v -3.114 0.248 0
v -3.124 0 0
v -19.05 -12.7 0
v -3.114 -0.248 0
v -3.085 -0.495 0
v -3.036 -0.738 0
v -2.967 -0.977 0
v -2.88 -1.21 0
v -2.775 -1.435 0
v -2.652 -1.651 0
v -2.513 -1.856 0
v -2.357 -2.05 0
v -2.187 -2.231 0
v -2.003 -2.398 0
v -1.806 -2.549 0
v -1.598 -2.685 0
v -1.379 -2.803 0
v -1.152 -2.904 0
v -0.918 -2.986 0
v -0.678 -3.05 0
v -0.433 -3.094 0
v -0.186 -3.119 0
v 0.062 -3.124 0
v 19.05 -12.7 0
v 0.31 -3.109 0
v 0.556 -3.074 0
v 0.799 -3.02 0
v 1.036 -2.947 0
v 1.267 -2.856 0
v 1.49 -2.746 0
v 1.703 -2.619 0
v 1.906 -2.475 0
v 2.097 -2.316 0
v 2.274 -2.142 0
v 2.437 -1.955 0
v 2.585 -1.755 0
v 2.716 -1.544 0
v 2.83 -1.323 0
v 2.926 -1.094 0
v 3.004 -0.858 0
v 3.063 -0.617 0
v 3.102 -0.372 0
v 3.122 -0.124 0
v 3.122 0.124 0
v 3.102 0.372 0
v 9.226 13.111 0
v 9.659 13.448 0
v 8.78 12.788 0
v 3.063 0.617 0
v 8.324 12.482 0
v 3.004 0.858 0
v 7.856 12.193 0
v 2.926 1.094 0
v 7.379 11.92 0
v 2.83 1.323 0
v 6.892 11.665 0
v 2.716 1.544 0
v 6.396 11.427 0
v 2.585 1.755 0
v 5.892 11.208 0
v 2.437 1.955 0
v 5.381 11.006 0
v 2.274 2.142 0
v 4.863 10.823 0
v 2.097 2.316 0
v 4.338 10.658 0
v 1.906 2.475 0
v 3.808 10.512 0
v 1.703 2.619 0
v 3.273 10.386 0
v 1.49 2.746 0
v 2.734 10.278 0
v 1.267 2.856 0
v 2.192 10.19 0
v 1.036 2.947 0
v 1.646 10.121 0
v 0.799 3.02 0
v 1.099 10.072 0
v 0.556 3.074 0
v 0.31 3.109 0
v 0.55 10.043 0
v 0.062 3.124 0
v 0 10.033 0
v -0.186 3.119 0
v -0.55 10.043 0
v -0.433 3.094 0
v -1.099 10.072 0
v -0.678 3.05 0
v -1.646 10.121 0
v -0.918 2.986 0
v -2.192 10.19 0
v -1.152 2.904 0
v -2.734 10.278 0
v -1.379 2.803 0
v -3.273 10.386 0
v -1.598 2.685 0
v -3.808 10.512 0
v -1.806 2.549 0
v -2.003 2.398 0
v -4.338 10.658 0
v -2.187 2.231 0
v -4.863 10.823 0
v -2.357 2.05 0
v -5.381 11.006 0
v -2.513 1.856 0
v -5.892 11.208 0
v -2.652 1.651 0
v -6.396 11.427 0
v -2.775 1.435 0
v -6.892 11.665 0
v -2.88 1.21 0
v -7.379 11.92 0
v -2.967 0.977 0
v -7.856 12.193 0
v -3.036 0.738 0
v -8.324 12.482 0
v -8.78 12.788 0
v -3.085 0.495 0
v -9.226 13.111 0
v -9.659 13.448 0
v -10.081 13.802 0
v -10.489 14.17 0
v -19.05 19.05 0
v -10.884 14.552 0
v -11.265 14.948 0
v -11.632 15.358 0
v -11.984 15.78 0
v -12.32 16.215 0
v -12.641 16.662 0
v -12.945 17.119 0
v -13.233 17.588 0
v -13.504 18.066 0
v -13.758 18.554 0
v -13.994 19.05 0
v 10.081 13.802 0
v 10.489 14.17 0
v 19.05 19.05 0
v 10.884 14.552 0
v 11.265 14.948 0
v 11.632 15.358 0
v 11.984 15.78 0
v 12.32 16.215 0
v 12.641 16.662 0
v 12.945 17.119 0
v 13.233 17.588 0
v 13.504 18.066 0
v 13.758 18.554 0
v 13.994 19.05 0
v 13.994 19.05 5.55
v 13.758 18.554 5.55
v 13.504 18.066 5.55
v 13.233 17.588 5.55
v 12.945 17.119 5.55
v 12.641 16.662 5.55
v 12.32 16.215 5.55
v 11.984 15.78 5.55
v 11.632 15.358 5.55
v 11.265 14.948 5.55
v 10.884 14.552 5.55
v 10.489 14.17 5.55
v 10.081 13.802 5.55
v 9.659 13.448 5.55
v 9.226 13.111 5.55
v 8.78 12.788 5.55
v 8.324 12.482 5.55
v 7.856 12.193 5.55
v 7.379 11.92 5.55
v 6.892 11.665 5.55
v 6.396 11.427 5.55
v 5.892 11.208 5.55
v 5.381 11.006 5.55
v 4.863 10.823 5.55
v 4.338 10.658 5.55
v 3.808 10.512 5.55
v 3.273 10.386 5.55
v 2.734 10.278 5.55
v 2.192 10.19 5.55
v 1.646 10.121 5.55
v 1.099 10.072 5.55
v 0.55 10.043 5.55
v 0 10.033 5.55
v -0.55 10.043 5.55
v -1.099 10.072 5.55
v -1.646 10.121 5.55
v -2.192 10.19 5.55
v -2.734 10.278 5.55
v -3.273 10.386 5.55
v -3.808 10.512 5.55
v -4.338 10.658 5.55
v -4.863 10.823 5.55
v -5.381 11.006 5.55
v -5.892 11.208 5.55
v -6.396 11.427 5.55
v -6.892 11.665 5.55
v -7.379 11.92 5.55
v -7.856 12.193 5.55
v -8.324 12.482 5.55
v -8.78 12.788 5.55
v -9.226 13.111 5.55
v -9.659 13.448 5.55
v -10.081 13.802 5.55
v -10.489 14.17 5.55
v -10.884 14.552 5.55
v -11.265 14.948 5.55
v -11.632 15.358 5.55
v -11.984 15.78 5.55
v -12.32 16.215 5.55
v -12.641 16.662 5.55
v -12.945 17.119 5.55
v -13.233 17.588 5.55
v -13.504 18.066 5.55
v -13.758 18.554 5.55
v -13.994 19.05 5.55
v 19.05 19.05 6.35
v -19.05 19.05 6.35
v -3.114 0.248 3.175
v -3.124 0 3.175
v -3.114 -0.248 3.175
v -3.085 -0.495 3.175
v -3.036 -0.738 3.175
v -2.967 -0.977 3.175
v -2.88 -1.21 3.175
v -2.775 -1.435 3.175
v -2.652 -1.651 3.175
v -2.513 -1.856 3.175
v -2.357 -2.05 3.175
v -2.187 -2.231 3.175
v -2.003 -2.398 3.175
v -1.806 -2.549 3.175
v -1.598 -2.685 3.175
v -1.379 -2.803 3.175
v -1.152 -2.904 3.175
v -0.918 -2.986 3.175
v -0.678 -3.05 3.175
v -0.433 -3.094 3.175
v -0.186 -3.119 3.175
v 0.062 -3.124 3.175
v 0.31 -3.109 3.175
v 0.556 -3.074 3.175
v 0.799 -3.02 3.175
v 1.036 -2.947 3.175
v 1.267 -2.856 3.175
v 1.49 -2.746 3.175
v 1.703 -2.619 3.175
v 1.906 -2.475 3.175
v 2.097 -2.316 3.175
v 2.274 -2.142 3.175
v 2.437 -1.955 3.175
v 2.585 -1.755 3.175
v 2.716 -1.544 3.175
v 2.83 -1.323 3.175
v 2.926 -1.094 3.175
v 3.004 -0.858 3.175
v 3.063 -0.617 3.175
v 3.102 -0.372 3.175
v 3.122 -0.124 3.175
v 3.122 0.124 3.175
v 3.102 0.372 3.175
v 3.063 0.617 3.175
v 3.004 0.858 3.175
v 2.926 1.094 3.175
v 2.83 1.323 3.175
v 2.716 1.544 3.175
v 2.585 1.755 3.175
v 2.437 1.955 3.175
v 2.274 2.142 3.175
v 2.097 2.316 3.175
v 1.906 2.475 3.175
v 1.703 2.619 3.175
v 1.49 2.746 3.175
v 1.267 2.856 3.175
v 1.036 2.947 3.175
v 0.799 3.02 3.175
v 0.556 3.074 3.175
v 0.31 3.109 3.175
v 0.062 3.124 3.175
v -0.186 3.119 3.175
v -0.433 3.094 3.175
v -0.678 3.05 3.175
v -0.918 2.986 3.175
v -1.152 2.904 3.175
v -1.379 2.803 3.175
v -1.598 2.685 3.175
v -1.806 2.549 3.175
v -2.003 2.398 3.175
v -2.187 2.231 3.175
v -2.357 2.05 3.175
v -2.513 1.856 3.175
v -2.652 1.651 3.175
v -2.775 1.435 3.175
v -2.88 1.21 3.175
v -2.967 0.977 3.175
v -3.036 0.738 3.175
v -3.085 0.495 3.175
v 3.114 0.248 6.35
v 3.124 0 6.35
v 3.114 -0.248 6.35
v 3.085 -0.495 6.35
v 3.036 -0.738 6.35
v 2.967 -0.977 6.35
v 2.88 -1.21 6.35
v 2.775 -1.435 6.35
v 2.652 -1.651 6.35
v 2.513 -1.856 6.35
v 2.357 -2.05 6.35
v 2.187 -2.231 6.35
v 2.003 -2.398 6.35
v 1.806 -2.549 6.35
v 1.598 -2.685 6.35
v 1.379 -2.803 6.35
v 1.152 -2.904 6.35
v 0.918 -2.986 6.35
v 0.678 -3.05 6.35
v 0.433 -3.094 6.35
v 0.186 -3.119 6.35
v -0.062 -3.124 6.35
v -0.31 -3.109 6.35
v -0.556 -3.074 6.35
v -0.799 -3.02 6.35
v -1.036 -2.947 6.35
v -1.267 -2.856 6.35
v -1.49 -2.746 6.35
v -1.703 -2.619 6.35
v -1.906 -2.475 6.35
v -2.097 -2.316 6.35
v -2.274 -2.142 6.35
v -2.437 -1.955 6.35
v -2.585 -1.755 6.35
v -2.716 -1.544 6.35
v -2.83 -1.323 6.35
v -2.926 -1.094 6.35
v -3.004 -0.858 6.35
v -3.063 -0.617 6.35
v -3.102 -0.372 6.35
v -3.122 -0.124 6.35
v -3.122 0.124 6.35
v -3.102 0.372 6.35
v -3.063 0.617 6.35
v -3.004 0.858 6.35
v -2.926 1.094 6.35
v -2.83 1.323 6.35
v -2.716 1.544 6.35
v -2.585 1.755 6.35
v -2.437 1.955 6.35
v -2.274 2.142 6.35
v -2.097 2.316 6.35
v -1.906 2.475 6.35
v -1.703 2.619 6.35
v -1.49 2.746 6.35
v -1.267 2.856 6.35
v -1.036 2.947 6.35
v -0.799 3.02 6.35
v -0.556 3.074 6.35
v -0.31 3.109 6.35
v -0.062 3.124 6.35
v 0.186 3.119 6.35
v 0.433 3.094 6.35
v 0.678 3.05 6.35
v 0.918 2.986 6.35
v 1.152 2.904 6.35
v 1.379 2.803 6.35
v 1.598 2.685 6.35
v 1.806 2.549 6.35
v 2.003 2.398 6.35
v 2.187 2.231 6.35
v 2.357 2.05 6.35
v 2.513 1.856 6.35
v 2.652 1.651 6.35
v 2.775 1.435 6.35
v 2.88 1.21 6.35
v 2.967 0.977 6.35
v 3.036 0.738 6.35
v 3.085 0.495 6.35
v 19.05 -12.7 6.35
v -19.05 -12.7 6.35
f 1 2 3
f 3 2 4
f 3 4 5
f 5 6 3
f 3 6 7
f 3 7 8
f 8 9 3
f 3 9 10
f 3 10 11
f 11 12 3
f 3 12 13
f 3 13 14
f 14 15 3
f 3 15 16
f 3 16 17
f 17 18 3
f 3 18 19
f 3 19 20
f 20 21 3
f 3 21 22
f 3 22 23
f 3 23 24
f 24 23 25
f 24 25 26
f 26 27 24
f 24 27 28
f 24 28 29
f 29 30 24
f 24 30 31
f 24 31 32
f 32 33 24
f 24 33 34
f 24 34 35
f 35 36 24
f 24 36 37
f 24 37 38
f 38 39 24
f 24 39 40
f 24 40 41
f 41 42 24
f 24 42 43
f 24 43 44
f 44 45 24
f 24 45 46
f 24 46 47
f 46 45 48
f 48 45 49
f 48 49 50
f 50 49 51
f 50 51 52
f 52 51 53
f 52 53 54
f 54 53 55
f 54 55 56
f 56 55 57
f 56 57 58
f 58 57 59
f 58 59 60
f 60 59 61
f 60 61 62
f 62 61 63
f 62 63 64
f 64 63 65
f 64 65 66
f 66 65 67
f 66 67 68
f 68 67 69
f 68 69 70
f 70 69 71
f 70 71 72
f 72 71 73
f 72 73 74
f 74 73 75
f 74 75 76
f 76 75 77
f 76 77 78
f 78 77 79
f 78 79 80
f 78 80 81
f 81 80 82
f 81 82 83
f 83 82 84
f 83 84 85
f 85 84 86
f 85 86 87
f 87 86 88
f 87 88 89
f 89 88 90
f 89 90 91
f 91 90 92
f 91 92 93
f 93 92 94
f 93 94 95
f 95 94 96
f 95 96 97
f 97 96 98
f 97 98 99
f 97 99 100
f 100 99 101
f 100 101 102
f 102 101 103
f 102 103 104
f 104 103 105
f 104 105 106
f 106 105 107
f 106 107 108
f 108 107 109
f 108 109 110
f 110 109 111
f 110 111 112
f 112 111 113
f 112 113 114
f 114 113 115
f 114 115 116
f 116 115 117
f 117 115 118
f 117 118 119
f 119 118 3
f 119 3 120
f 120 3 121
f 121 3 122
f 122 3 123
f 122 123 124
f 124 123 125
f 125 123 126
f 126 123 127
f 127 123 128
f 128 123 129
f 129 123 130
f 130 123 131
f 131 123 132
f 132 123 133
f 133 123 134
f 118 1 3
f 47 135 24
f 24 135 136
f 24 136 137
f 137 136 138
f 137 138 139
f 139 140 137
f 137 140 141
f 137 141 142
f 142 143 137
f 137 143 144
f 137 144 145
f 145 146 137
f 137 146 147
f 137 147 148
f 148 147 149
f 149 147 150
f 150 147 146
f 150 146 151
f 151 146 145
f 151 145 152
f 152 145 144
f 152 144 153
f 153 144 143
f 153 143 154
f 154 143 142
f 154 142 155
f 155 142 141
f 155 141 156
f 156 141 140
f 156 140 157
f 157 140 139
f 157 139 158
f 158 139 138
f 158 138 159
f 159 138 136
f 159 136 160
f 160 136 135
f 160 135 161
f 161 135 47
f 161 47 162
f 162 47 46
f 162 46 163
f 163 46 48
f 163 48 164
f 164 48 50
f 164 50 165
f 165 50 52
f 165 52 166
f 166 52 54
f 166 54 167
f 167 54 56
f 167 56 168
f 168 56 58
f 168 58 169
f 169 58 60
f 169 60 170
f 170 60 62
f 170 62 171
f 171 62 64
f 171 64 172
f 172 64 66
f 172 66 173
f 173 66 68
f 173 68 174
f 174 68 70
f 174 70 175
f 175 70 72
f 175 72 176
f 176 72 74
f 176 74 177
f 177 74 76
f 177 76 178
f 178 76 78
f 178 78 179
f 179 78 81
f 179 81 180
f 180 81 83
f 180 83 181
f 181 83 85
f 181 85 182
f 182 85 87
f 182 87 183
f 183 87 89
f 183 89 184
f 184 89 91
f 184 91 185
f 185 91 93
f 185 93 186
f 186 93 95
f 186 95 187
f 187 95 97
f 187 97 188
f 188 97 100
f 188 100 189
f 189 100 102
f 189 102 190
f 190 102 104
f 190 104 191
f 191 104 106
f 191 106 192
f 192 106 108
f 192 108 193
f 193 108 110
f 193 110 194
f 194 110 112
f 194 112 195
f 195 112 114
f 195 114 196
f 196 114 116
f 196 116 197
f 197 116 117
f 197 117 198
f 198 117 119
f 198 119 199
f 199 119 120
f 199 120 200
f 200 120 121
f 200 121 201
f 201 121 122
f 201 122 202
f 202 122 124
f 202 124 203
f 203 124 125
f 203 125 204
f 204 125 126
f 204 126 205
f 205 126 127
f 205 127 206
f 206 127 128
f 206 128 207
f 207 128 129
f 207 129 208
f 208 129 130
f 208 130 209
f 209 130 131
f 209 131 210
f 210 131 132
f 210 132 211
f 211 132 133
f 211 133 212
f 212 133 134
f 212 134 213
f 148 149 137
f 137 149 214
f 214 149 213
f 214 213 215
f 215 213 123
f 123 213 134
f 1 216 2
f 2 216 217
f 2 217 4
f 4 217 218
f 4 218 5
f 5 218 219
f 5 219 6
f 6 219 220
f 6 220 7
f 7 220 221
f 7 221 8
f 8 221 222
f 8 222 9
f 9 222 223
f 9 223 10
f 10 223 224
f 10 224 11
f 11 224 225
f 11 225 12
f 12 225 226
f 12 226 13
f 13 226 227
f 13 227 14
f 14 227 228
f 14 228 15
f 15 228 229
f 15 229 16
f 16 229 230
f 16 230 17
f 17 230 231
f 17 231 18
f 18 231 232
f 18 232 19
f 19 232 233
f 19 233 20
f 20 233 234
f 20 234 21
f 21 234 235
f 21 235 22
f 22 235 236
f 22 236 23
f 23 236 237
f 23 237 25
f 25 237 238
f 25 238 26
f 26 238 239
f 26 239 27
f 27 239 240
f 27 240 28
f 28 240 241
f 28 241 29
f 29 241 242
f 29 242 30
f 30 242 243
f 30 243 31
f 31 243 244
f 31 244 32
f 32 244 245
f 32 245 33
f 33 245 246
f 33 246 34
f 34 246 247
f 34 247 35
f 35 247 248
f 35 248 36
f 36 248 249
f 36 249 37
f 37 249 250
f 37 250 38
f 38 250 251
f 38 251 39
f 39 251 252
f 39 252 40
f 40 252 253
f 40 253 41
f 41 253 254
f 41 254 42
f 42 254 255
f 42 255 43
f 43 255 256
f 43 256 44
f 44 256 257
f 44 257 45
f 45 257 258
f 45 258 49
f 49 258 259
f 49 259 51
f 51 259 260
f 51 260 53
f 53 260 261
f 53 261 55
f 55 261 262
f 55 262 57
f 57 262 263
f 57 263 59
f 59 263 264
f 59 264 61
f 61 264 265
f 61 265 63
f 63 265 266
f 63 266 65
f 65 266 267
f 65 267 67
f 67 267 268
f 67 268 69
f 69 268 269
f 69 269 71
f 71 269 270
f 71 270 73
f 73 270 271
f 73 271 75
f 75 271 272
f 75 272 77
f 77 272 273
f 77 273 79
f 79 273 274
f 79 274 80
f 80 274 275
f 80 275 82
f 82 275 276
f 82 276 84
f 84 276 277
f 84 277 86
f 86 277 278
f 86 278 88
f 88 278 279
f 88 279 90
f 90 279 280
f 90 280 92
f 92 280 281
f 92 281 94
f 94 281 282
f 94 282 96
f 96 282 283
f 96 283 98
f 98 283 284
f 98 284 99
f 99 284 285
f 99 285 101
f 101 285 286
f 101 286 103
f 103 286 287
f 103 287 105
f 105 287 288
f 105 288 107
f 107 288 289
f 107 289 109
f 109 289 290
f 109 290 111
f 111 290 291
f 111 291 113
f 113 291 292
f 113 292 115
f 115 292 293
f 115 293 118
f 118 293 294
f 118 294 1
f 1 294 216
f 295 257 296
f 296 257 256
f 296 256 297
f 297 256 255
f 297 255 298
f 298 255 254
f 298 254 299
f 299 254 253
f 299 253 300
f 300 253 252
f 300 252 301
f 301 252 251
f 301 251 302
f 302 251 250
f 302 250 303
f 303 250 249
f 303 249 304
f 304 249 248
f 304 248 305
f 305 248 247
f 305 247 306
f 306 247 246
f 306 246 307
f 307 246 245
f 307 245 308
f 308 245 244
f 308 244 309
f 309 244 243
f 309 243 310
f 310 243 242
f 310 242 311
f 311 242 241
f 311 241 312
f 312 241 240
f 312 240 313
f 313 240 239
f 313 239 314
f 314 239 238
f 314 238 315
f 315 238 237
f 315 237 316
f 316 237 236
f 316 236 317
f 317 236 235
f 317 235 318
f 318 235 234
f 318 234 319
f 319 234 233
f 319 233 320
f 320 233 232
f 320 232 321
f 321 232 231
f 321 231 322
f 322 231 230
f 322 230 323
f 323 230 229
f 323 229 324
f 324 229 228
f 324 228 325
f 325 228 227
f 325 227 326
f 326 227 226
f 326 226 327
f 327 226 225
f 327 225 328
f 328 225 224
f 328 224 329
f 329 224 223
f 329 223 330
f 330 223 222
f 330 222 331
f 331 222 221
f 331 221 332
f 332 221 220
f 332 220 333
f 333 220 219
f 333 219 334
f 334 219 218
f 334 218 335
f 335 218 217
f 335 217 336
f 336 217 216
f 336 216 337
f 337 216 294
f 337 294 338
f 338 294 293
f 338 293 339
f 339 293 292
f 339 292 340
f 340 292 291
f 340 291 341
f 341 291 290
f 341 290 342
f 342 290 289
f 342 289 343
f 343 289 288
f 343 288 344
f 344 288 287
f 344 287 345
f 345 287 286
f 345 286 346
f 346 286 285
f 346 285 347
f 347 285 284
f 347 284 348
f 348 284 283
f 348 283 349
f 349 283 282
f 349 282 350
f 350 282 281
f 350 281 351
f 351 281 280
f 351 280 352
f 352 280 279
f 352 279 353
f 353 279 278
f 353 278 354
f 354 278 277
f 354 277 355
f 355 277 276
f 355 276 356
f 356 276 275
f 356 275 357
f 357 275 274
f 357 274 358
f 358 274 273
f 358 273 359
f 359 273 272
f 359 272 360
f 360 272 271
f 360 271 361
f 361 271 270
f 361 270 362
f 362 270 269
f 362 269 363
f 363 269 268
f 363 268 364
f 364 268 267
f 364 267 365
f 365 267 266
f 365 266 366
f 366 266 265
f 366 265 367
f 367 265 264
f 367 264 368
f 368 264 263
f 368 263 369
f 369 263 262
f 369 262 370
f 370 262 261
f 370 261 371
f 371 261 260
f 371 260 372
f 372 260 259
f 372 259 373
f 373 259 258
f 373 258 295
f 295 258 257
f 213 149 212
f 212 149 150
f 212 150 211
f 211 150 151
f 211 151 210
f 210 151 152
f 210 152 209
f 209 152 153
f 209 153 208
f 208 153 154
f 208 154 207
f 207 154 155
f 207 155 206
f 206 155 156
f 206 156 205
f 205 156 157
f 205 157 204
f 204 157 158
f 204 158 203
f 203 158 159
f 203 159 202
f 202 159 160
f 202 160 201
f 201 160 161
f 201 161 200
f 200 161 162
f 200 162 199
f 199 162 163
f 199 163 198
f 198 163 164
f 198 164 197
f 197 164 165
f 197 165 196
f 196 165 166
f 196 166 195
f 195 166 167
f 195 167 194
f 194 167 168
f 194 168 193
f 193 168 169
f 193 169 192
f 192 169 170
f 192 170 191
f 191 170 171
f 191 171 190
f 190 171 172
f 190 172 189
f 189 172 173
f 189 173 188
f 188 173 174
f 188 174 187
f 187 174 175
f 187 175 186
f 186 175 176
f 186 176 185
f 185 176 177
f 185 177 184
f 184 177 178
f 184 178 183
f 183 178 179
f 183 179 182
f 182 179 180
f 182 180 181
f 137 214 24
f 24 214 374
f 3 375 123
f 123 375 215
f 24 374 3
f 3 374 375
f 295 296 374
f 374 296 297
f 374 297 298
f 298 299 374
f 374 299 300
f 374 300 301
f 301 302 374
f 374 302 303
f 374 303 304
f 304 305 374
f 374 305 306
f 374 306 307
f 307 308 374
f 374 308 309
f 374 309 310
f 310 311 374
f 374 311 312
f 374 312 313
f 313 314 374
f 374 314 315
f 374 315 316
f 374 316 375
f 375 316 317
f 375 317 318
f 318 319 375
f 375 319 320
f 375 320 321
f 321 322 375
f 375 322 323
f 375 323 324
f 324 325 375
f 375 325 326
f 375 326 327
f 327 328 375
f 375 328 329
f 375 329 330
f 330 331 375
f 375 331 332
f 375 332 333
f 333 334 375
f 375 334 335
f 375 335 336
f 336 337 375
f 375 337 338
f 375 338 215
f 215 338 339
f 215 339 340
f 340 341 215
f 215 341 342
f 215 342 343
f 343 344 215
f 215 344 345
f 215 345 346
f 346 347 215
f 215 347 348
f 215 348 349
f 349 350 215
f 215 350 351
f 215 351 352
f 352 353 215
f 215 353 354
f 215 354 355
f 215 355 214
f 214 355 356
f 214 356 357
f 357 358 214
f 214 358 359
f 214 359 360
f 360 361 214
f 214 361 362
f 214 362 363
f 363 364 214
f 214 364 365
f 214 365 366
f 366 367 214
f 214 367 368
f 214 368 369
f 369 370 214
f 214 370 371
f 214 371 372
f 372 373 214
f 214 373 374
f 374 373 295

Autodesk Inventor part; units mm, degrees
ref_plane "YZ Plane" through (0, 0, 0) normal (1, 0, 0) x (0, 1, 0)
ref_plane "XZ Plane" through (0, 0, 0) normal (0, 1, 0) x (-1, 0, 0)
sketch "Sketch3" plane through (0, 0, 0) normal (0, 0, 1) x (1, 0, 0)
  line L0 (-12.7, -19.05) -> (12.7, -19.05)
  line L1 (12.7, -19.05) -> (12.7, 19.05)
  line L2 (12.7, 19.05) -> (-12.7, 19.05)
  line L3 (-12.7, 19.05) -> (-12.7, -19.05)
  line L4 (-12.7, -19.05) -> (12.7, 19.05) construction
  line L5 (12.7, -19.05) -> (-12.7, 19.05) construction
  point P0 (0, 0)
  dimension "d0" = 25.4
  dimension "d1" = 38.1
extrude "Extrusion1" add sketch "Sketch3" along normal mid plane 12.7
sketch "Sketch4" plane through (0, 0, 6.35) normal (0, 0, 1) x (1, 0, 0)
  circle A0 centre (0, 0) radius 2.667
  dimension "d4" = 5.334
extrude "Extrusion2" cut sketch "Sketch4" against normal through all
sketch "Sketch5" plane through (-12.7, -19.05, 6.35) normal (-1, 0, 0) x (0, 0, 1)
  line L0 (3.175, 6.35) -> (50.8, 6.35) projected
  line L1 (-12.7, 38.1) -> (-12.7, 0) projected
  line L2 (0, 0) -> (0, 38.1) projected
  line L3 (-12.7, 0) -> (0, 0)
  line L4 (0, 0) -> (0, 6.35)
  line L5 (0, 6.35) -> (-12.7, 6.35)
  line L6 (-12.7, 6.35) -> (-12.7, 0)
  point P0 (-6.35, 19.05)
  point P1 (-12.7, 6.35)
  dimension "d9" = 6.35
extrude "Extrusion3" cut sketch "Sketch5" against normal through all
sketch "Sketch8" plane through (-12.7, -12.7, -6.35) normal (-1, 0, 0) x (0, 0, 1)
  line L0 (-4.7625, 21.8398) -> (-4.7625, 13.2284) projected
  line L1 (12.7, 0) -> (12.7, 31.75) projected
  line L2 (12.7, 0) -> (-4.7625, 0)
  line L3 (-4.7625, 0) -> (-4.7625, 31.75)
  line L4 (-4.7625, 31.75) -> (12.7, 31.75)
  line L5 (12.7, 31.75) -> (12.7, 0)
  point P0 (6.35, 12.7)
  point P1 (-4.7625, 13.2284)
extrude "Extrusion5" add sketch "Sketch8" along normal blind 6.35
mirror "Mirror1" about plane through (0, 0, 0) normal (1, 0, 0) of "Extrusion5"
sketch "Sketch6" plane through (0, 0, 0) normal (0, 0, 1) x (1, 0, 0)
  circle A0 centre (0, 25.4) radius 15.367
  point P0 (0, 0)
  dimension "d10" = 25.4
  dimension "d13" = 30.734
extrude "cutOutForGuide" cut sketch "Sketch6" along normal mid plane 11.0998
sketch "Sketch9" plane through (0, 0, 6.35) normal (0, 0, 1) x (1, 0, 0)
  circle A0 centre (0, 0) radius 3.1242
  dimension "d16" = 6.2484
extrude "Extrusion6" cut sketch "Sketch9" against normal blind 9.525
split "Split1" plane through (0, 0, 0) removes the side toward (0, 0, -1)
properties part number "preventWireJumpingSingleSupportSliceA" material "PBT Plastic"
